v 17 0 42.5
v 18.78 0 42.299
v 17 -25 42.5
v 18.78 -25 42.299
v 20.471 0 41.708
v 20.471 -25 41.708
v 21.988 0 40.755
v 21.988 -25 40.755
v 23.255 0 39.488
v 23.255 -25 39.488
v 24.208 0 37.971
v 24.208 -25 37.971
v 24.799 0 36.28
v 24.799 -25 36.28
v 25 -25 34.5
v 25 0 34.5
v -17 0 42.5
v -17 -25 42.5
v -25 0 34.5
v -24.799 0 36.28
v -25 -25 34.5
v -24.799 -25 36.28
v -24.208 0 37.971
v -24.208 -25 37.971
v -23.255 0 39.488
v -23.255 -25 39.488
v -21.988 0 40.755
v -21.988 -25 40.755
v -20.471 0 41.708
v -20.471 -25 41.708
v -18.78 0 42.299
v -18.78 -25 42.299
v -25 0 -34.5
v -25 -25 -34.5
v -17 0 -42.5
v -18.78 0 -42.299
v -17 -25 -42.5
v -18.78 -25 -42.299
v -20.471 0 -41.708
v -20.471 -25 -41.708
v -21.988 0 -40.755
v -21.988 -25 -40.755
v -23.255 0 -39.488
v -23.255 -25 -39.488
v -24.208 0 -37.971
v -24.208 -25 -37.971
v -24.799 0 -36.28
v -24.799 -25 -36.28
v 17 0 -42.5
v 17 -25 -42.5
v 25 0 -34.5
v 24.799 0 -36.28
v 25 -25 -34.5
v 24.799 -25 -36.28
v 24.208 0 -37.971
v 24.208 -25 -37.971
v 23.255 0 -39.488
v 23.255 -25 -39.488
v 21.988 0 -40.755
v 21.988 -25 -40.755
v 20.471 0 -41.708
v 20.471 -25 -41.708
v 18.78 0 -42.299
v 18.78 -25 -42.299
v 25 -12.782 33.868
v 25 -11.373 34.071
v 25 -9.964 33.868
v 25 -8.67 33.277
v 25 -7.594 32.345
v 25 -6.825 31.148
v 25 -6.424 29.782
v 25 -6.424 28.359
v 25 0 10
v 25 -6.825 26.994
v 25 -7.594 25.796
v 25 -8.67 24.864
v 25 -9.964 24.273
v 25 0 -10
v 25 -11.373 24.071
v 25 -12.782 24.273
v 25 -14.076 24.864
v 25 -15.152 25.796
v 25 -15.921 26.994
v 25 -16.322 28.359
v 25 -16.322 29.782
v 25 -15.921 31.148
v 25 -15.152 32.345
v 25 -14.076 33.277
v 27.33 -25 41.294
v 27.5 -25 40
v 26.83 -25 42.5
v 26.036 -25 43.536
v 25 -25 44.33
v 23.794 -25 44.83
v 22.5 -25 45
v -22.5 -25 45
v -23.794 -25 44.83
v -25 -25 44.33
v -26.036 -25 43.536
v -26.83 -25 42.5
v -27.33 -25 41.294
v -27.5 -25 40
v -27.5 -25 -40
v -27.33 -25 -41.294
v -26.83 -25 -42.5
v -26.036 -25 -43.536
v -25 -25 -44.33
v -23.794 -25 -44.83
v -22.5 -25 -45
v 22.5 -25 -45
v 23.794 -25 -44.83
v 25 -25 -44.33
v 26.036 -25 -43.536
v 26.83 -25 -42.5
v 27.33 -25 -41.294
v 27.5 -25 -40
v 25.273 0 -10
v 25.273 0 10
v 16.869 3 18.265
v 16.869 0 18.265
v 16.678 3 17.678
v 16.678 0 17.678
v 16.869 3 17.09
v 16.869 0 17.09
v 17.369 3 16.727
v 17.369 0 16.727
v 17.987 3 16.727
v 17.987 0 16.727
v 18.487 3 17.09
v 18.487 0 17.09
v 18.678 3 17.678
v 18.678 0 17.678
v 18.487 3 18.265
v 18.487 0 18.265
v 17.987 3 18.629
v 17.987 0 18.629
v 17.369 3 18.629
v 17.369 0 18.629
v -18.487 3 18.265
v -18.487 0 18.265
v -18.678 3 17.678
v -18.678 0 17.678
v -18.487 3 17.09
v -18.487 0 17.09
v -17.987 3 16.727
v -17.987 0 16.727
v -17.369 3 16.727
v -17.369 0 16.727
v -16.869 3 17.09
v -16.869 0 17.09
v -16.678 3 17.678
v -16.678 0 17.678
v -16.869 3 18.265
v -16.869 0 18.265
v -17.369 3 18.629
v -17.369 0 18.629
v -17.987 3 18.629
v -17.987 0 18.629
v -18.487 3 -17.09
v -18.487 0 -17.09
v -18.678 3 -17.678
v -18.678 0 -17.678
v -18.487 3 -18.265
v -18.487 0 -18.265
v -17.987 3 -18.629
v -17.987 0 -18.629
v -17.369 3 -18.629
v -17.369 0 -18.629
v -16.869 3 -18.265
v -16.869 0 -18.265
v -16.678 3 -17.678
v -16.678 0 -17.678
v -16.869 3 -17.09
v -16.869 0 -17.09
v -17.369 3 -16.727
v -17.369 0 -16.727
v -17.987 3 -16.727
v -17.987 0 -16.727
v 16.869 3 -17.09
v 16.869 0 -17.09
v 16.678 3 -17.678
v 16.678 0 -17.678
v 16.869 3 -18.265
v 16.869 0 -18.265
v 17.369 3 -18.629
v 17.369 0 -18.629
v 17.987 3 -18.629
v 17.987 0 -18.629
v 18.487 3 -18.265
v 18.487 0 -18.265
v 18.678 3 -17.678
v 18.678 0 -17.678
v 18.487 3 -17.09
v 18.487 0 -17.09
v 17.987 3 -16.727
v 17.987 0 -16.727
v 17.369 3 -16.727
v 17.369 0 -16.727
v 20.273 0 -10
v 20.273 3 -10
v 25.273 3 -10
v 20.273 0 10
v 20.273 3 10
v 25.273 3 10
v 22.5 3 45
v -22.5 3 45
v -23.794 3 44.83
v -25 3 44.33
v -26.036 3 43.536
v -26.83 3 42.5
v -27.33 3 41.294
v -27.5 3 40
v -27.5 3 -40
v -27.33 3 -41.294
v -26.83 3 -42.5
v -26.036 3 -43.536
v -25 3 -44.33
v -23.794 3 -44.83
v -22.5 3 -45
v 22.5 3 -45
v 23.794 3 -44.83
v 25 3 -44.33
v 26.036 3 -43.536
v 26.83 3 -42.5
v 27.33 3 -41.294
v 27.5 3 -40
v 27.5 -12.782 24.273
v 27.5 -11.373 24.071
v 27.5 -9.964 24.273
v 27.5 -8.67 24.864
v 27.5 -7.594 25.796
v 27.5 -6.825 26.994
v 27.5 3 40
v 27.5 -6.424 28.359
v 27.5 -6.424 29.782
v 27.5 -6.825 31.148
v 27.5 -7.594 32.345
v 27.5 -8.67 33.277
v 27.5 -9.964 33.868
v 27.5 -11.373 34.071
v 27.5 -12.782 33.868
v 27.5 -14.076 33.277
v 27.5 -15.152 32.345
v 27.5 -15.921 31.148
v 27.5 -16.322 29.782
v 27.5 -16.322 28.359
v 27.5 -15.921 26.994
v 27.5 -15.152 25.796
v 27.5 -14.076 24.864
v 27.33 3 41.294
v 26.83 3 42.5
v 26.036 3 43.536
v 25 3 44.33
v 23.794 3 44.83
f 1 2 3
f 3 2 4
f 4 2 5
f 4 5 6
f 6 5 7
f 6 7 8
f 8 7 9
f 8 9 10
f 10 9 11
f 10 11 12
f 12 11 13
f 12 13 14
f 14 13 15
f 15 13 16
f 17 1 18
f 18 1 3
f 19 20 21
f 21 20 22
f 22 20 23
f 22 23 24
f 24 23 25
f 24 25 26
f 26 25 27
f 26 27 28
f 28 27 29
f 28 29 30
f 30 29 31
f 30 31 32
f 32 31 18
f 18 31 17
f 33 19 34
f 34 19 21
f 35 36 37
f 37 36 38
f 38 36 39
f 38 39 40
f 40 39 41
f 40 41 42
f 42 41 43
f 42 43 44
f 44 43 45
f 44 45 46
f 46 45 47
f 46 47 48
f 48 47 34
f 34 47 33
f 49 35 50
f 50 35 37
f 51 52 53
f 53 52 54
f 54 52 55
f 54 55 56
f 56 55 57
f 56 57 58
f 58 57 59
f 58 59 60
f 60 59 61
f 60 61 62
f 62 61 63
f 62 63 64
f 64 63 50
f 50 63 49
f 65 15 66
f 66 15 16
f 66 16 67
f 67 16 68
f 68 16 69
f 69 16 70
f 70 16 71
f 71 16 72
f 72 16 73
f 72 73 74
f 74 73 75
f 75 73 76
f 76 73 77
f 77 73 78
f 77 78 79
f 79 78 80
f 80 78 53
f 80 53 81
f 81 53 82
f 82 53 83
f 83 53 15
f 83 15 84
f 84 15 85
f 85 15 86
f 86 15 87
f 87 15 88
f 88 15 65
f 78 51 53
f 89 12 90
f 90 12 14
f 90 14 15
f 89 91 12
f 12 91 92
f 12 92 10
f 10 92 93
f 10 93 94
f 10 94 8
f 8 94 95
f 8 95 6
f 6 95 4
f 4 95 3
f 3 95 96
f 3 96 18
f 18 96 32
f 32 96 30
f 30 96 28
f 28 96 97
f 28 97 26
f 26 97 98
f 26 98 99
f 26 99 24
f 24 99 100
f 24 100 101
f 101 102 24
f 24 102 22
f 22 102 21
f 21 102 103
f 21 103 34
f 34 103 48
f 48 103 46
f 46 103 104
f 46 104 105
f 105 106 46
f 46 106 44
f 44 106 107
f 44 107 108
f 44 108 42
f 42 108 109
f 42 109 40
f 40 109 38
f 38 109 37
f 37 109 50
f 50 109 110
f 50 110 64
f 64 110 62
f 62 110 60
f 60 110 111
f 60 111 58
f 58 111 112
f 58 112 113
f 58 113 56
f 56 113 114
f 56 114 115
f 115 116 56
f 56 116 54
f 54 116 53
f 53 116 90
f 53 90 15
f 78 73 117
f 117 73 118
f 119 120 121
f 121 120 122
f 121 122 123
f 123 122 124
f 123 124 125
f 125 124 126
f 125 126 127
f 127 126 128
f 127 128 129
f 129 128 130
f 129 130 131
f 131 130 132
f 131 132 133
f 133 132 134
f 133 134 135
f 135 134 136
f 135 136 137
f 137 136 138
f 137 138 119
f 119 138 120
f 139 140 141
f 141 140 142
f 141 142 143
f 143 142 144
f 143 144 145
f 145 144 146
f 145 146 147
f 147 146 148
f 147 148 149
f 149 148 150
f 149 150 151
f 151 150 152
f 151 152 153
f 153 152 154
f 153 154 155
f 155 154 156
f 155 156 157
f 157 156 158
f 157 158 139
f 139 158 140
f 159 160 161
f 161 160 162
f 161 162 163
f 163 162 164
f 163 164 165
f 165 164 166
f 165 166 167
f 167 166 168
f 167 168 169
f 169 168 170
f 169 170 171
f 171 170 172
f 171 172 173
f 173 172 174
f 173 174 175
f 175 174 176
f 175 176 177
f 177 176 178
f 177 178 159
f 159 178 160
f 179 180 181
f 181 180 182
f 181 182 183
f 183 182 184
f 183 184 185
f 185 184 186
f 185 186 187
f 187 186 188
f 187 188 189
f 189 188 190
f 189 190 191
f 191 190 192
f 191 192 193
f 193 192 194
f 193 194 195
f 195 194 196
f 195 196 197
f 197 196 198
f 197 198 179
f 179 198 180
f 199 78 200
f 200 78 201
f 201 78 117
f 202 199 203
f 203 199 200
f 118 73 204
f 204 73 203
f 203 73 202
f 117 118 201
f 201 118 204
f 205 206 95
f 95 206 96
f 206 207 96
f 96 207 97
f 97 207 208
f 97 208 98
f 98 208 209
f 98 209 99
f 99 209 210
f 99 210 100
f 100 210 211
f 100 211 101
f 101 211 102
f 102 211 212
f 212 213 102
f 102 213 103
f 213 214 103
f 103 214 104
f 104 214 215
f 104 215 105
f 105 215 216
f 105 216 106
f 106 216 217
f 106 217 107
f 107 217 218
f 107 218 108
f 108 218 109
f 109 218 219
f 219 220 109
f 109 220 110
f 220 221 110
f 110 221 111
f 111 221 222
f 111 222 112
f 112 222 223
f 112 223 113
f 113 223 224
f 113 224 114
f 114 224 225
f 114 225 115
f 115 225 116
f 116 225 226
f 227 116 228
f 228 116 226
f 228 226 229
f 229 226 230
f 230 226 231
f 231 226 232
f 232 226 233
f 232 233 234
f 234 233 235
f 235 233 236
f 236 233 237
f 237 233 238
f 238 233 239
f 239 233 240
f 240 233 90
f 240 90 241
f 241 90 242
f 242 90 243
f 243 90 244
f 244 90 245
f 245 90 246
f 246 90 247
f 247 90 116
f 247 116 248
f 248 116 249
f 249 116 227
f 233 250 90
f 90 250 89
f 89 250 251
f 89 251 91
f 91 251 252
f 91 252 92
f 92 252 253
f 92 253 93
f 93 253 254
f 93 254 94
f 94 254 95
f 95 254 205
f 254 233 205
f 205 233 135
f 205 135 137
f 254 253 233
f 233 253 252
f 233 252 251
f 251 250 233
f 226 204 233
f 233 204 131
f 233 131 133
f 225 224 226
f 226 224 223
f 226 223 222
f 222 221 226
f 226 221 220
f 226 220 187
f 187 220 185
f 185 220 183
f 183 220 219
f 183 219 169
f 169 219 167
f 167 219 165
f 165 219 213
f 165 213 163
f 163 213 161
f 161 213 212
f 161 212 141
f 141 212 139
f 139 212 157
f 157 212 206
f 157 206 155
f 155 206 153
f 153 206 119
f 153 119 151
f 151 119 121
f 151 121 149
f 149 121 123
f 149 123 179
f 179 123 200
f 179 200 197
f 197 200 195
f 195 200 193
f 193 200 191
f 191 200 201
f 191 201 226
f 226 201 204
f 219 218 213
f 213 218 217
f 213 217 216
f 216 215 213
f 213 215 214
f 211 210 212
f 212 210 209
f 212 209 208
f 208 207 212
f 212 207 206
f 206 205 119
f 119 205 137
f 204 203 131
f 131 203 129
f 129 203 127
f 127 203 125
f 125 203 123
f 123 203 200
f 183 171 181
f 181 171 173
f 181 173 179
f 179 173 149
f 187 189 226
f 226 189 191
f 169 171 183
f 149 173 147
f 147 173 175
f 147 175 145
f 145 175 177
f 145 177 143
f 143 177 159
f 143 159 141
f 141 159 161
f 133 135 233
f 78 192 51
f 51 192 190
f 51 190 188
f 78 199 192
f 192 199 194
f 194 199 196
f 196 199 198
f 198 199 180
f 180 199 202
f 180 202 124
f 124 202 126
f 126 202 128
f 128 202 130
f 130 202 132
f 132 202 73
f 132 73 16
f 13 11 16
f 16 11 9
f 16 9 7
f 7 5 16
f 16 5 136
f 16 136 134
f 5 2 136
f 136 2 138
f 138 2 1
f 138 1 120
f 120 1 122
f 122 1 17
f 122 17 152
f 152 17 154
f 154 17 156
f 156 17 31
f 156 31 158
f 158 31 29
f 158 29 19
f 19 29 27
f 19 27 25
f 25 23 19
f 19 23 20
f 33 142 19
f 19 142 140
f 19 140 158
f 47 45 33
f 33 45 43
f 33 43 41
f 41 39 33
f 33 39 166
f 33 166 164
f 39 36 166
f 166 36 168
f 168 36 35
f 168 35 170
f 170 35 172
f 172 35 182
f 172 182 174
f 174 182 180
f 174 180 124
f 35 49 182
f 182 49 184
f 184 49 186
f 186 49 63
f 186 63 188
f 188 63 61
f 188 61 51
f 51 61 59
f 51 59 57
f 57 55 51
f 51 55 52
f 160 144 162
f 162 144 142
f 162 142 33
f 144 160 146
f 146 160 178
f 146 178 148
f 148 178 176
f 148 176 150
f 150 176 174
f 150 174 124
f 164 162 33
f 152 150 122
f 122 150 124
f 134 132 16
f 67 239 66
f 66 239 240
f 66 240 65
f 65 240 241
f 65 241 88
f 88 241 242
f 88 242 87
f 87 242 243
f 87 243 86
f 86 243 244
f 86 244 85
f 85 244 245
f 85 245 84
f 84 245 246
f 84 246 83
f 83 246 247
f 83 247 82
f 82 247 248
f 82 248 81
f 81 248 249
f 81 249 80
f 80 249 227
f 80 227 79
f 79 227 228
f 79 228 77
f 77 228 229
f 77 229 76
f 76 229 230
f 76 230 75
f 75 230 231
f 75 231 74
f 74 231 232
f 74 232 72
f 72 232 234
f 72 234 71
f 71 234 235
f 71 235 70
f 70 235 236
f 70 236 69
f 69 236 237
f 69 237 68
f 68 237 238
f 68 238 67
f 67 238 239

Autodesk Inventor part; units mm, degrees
ref_plane "YZ Plane" through (0, 0, 0) normal (1, 0, 0) x (0, 1, 0)
ref_plane "XZ Plane" through (0, 0, 0) normal (0, 1, 0) x (-1, 0, 0)
ref_plane "XY Plane" through (0, 0, 0) normal (0, 0, 1) x (1, 0, 0)
sketch "Sketch1" plane through (0, 0, 0) normal (0, 1, 0) x (-1, 0, 0)
  line L0 (22.5, 45) -> (-22.5, 45)
  line L1 (-27.5, 40) -> (-27.5, -40)
  line L2 (-22.5, -45) -> (22.5, -45)
  line L3 (27.5, -40) -> (27.5, 40)
  line L4 (27.5, 45) -> (-27.5, -45) construction
  line L5 (-27.5, 45) -> (27.5, -45) construction
  line L6 (0, 0) -> (17.6777, 17.6777) construction
  line L7 (0, 0) -> (25, 0) construction
  circle A0 centre (17.6777, 17.6777) radius 1
  line L8 (17.6777, 17.6777) -> (21.2132, 14.1421) construction
  arc A1 (21.2132, 14.1421) -> (14.1421, 21.2132) centre (17.6777, 17.6777) ccw construction
  circle A2 centre (0, 0) radius 20 construction
  line L9 (14.1421, 21.2132) -> (10.1575, 17.2286) construction
  arc A3 (-6.25, 18.9984) -> (6.25, 18.9984) centre (0, 0) ccw construction
  line L10 (21.2132, 14.1421) -> (17.2286, 10.1575) construction
  line L11 (-14.1421, 21.2132) -> (-10.1575, 17.2286) construction
  arc A4 (-14.1421, 21.2132) -> (-21.2132, 14.1421) centre (-17.6777, 17.6777) ccw construction
  line L12 (-21.2132, 14.1421) -> (-17.2286, 10.1575) construction
  circle A5 centre (-17.6777, 17.6777) radius 1
  line L13 (-21.2132, -14.1421) -> (-17.2286, -10.1575) construction
  arc A6 (-21.2132, -14.1421) -> (-14.1421, -21.2132) centre (-17.6777, -17.6777) ccw construction
  line L14 (-14.1421, -21.2132) -> (-10.1575, -17.2286) construction
  circle A7 centre (-17.6777, -17.6777) radius 1
  line L15 (14.1421, -21.2132) -> (10.1575, -17.2286) construction
  arc A8 (14.1421, -21.2132) -> (21.2132, -14.1421) centre (17.6777, -17.6777) ccw construction
  line L16 (21.2132, -14.1421) -> (17.2286, -10.1575) construction
  circle A9 centre (17.6777, -17.6777) radius 1
  line L17 (-20.273, 10) -> (-25.273, 10)
  line L18 (-25.273, 10) -> (-25.273, -10)
  line L19 (-25.273, -10) -> (-20.273, -10)
  line L20 (-20.273, -10) -> (-20.273, 10)
  line L21 (-20.273, 10) -> (-25.273, -10) construction
  line L22 (-25.273, 10) -> (-20.273, -10) construction
  line L23 (39.9497, 0) -> (-39.9497, 0) projected
  arc A10 (22.5, -45) -> (27.5, -40) centre (22.5, -40) ccw
  arc A11 (27.5, 40) -> (22.5, 45) centre (22.5, 40) ccw
  arc A12 (-22.5, 45) -> (-27.5, 40) centre (-22.5, 40) ccw
  arc A13 (-27.5, -40) -> (-22.5, -45) centre (-22.5, -40) ccw
  point P0 (-22.773, 0)
  point P1 (-22.773, 0)
  dimension "d0" = 55
  dimension "d1" = 90
  dimension "d4" = 25
  dimension "d5" = 45
  dimension "d6" = 2
  dimension "d7" = 5
  dimension "d8" = 360
  dimension "d9" = 5
  dimension "d10" = 20
  dimension "d18" = 5
extrude "Extrusion1" add sketch "Sketch1" along normal blind 3 contours A11 L3 L23 L20 L17 L18 L1 A12 L0 | L3 A10 L2 A13 L1 L23 L18 L19 L20
sketch "Sketch2" plane through (0, 0, 0) normal (0, -1, 0) x (1, 0, 0)
  line L0 (22.5, 45) -> (-22.5, 45)
  line L1 (-27.5, 40) -> (-27.5, -40)
  line L2 (-22.5, -45) -> (22.5, -45)
  line L3 (27.5, -40) -> (27.5, 40)
  line L4 (27.5, 45) -> (-27.5, -45) construction
  line L5 (-27.5, 45) -> (27.5, -45) construction
  line L6 (17, 42.5) -> (-17, 42.5)
  line L7 (-25, 34.5) -> (-25, -34.5)
  line L8 (-17, -42.5) -> (17, -42.5)
  line L9 (25, -34.5) -> (25, 34.5)
  line L10 (25, 42.5) -> (-25, -42.5) construction
  line L11 (-25, 42.5) -> (25, -42.5) construction
  arc A0 (25, 34.5) -> (17, 42.5) centre (17, 34.5) ccw
  arc A1 (17, -42.5) -> (25, -34.5) centre (17, -34.5) ccw
  arc A2 (-25, -34.5) -> (-17, -42.5) centre (-17, -34.5) ccw
  arc A3 (-17, 42.5) -> (-25, 34.5) centre (-17, 34.5) ccw
  arc A4 (27.5, 40) -> (22.5, 45) centre (22.5, 40) ccw
  arc A5 (-22.5, 45) -> (-27.5, 40) centre (-22.5, 40) ccw
  arc A6 (-27.5, -40) -> (-22.5, -45) centre (-22.5, -40) ccw
  arc A7 (22.5, -45) -> (27.5, -40) centre (22.5, -40) ccw
  point P0 (0, 0)
  dimension "d13" = 55
  dimension "d14" = 90
  dimension "d15" = 50
  dimension "d16" = 85
  dimension "d17" = 8
  dimension "d21" = 5
extrude "Extrusion2" add sketch "Sketch2" along normal blind 25
sketch "Sketch3" plane through (27.5, 3, 40) normal (1, 0, 0) x (0, 0, -1)
  circle A0 centre (10.9293, -14.3731) radius 5
  point P0 (40, -3)
  dimension "d22" = 10
extrude "Extrusion3" cut sketch "Sketch3" against normal up to surface (2.5 mm away)
properties part number "mount1"
